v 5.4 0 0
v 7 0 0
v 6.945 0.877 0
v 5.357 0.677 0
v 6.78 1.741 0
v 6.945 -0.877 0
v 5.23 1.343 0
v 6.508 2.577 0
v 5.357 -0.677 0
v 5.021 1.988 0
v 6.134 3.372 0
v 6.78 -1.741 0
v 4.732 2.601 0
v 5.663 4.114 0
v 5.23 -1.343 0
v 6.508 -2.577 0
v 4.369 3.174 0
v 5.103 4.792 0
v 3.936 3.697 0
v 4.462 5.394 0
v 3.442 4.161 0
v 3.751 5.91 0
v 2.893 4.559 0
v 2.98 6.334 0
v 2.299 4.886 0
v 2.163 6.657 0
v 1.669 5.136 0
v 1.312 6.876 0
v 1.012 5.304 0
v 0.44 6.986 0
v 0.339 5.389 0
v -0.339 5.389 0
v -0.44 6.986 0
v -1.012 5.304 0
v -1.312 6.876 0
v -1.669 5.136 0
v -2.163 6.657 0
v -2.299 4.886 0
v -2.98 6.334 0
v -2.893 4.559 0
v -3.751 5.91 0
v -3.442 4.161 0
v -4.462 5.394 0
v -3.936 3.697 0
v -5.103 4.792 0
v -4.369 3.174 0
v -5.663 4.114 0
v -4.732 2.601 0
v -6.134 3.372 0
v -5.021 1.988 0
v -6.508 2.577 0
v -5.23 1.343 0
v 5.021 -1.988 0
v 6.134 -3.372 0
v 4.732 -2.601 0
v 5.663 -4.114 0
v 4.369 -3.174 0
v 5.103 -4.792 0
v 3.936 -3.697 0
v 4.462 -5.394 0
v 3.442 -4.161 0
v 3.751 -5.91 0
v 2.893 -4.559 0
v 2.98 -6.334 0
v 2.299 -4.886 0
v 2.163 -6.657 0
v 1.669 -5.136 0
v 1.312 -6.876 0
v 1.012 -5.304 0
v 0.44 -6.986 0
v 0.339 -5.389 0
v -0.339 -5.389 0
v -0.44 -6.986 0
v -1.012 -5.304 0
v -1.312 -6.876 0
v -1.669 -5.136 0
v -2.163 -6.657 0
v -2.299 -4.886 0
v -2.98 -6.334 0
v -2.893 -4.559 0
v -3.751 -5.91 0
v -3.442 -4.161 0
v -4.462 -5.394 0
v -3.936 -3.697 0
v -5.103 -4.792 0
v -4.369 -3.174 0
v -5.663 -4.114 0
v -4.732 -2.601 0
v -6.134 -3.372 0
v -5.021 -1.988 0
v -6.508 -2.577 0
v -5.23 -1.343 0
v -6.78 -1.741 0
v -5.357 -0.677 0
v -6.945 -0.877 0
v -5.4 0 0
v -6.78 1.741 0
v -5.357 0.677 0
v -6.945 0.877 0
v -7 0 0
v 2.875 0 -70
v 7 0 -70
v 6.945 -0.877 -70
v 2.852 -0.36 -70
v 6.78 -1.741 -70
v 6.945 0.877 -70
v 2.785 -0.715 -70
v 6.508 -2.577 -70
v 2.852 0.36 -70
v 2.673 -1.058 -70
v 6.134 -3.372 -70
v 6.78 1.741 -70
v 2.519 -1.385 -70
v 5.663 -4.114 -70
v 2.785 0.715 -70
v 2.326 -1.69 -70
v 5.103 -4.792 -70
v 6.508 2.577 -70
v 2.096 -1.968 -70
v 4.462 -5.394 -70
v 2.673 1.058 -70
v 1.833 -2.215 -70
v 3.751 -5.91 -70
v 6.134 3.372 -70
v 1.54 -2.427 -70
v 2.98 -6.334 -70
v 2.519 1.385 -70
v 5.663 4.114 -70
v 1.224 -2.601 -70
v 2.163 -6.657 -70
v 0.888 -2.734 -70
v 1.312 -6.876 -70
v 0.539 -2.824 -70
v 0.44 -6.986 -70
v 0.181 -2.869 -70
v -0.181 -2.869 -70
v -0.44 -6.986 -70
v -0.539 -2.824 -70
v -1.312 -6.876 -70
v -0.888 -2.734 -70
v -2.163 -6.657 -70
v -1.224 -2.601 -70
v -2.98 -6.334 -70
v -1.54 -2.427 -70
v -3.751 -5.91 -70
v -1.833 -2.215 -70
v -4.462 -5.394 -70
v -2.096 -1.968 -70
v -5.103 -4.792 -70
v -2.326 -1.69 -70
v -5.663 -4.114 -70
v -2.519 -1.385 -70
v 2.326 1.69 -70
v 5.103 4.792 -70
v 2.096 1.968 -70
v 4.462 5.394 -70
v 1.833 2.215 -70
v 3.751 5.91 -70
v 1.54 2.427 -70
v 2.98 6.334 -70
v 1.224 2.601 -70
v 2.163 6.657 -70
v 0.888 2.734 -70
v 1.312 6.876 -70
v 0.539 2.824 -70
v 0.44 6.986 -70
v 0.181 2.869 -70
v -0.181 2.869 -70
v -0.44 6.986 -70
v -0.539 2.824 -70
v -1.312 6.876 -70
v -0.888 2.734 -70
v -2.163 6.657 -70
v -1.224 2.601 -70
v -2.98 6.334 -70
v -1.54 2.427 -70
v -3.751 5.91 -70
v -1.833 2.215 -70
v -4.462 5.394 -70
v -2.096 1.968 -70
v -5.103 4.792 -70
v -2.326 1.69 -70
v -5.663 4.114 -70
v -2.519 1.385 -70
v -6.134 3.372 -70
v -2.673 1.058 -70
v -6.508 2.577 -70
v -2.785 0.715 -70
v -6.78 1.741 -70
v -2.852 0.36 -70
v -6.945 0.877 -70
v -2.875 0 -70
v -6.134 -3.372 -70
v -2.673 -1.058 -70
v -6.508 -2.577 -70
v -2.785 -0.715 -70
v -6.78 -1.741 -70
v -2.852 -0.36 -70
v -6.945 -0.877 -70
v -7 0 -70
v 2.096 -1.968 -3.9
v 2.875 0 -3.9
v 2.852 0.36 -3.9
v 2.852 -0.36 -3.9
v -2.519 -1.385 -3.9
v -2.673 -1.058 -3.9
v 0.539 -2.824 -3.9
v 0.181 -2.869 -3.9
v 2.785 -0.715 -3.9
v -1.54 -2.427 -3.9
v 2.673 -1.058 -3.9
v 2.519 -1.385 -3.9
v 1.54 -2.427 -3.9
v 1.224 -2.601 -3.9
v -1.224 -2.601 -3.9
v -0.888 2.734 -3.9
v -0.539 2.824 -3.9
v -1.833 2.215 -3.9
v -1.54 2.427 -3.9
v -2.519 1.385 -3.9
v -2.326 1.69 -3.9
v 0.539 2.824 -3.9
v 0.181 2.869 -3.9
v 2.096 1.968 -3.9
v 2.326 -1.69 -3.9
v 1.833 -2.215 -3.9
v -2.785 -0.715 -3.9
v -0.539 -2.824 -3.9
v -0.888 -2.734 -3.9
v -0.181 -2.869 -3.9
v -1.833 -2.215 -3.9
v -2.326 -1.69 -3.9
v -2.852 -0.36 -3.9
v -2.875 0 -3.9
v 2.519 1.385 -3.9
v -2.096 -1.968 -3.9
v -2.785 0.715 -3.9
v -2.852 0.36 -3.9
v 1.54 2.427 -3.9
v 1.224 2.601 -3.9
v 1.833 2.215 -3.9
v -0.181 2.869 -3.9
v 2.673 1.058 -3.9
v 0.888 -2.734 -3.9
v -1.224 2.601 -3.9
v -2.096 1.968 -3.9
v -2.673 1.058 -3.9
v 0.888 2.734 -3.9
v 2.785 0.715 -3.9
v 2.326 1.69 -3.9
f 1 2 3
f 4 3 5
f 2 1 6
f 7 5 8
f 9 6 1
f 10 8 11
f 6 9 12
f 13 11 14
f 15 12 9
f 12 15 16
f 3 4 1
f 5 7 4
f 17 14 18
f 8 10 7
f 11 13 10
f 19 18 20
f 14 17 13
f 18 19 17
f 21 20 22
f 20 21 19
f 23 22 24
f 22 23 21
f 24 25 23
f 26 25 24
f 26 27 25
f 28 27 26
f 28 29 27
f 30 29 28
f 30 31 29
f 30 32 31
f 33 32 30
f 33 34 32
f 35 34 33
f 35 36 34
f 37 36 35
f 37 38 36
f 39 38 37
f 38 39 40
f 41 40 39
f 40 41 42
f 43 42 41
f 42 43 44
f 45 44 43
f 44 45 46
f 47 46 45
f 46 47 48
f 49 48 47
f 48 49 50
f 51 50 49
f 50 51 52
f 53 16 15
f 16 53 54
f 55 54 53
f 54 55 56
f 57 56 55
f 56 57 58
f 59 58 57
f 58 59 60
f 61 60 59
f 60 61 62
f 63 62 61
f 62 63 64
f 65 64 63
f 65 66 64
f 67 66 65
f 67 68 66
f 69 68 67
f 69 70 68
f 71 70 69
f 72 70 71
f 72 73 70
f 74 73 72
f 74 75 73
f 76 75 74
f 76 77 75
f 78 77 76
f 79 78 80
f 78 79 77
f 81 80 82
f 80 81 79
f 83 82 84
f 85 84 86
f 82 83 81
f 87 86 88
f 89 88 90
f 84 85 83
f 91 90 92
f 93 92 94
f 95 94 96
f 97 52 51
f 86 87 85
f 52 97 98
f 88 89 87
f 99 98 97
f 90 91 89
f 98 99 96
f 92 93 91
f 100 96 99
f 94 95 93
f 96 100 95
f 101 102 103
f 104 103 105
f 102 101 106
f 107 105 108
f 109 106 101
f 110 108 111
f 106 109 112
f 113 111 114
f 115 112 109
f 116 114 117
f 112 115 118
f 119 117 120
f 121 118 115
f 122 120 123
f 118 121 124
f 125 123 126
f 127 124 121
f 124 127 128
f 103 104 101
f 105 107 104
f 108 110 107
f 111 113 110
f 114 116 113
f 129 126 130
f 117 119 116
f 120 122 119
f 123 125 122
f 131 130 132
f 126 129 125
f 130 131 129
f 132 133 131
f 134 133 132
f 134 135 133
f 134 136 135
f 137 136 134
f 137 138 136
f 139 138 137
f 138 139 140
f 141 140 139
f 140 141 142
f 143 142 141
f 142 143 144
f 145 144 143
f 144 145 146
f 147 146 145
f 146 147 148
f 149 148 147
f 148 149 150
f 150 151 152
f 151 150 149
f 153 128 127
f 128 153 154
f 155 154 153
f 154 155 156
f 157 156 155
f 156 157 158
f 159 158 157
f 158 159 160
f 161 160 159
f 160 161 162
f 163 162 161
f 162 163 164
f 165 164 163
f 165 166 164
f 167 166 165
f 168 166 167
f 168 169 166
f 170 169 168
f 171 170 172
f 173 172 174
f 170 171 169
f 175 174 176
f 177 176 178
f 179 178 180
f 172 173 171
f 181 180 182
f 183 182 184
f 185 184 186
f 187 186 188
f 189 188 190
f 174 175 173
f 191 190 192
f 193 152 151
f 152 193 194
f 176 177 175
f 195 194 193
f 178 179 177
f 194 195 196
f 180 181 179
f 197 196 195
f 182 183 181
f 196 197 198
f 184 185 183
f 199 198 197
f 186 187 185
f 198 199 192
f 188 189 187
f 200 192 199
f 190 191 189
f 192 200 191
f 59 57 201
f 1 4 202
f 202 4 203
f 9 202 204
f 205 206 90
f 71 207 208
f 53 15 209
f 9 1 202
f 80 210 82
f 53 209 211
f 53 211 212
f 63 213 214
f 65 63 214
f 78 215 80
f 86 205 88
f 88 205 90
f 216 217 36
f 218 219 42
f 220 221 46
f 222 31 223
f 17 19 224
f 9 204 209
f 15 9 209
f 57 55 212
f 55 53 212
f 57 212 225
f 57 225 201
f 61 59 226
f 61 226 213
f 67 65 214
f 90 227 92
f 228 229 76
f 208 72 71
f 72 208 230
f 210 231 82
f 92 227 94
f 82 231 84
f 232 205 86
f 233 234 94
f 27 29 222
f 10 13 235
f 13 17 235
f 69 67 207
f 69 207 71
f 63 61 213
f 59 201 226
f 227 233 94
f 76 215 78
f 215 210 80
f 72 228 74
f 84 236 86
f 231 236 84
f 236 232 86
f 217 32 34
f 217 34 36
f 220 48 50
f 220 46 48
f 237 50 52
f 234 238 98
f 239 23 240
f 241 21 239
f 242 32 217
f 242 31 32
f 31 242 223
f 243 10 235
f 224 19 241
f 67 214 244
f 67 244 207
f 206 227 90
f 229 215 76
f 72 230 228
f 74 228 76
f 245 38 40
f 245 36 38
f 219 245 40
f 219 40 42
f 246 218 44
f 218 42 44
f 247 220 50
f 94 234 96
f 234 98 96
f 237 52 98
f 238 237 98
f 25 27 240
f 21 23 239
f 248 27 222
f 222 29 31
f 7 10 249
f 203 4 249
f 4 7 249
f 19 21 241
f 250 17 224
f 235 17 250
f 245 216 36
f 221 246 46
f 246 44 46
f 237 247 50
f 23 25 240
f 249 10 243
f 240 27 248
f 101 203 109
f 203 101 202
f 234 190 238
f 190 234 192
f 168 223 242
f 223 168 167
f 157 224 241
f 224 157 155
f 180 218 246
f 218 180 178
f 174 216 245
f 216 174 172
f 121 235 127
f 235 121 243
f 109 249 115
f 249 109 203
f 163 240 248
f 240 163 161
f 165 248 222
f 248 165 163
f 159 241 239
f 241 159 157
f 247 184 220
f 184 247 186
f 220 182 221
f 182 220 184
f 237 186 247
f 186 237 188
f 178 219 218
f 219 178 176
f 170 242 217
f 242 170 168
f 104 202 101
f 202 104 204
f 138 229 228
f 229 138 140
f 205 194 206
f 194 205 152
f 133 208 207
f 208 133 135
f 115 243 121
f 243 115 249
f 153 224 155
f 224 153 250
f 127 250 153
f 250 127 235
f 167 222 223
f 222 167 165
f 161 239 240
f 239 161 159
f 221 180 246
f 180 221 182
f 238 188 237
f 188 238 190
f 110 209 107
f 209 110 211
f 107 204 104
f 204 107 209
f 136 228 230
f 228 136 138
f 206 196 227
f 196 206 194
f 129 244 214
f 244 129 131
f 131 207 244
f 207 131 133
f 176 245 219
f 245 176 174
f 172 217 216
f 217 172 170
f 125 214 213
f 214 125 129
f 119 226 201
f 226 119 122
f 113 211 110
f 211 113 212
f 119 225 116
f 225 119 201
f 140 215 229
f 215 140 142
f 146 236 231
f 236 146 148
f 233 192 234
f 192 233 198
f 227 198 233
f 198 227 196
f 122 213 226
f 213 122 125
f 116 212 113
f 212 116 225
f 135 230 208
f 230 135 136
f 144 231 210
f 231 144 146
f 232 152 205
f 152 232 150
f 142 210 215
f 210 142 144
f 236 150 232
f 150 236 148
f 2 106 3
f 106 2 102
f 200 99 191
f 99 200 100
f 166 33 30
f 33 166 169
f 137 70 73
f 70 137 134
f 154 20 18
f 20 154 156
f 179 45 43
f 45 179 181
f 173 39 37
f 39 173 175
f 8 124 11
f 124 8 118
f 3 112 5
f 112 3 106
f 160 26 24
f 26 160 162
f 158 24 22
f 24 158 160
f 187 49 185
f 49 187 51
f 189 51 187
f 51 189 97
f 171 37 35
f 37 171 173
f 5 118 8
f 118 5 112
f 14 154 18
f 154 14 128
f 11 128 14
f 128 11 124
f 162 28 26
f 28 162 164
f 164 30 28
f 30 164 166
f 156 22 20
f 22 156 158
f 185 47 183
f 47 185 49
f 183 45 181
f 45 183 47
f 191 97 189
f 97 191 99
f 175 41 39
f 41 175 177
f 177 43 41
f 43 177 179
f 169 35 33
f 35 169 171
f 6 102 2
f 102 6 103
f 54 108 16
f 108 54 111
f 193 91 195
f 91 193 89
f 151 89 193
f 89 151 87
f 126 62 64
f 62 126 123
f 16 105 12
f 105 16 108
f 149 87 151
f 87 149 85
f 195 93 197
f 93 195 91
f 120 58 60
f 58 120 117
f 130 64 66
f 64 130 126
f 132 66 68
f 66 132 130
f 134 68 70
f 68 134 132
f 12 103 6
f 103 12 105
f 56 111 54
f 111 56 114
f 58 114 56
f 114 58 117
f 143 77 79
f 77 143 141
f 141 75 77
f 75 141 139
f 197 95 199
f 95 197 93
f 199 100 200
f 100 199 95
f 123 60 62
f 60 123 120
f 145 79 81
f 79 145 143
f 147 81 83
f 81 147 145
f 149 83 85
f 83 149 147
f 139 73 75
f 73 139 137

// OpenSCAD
$fn = 50;


difference() {
	union() {
		translate(v = [0, 0, -70.0000000000]) {
			cylinder(h = 70, r = 7.0000000000);
		}
		cylinder(h = 0, r = 17.0000000000);
	}
	union() {
		translate(v = [0, 0, 0]) {
			rotate(a = [0, 0, 0]) {
				difference() {
					union() {
						#translate(v = [0, 0, -70.0000000000]) {
							cylinder(h = 70, r = 2.6000000000);
						}
						#translate(v = [0, 0, -3.9000000000]) {
							cylinder(h = 3.9000000000, r = 7.0000000000, r1 = 2.8750000000, r2 = 5.4000000000);
						}
						#translate(v = [0, 0, -70.0000000000]) {
							cylinder(h = 70, r = 2.8750000000);
						}
						#translate(v = [0, 0, -70.0000000000]) {
							cylinder(h = 70, r = 2.6000000000);
						}
					}
					union();
				}
			}
		}
	}
}
